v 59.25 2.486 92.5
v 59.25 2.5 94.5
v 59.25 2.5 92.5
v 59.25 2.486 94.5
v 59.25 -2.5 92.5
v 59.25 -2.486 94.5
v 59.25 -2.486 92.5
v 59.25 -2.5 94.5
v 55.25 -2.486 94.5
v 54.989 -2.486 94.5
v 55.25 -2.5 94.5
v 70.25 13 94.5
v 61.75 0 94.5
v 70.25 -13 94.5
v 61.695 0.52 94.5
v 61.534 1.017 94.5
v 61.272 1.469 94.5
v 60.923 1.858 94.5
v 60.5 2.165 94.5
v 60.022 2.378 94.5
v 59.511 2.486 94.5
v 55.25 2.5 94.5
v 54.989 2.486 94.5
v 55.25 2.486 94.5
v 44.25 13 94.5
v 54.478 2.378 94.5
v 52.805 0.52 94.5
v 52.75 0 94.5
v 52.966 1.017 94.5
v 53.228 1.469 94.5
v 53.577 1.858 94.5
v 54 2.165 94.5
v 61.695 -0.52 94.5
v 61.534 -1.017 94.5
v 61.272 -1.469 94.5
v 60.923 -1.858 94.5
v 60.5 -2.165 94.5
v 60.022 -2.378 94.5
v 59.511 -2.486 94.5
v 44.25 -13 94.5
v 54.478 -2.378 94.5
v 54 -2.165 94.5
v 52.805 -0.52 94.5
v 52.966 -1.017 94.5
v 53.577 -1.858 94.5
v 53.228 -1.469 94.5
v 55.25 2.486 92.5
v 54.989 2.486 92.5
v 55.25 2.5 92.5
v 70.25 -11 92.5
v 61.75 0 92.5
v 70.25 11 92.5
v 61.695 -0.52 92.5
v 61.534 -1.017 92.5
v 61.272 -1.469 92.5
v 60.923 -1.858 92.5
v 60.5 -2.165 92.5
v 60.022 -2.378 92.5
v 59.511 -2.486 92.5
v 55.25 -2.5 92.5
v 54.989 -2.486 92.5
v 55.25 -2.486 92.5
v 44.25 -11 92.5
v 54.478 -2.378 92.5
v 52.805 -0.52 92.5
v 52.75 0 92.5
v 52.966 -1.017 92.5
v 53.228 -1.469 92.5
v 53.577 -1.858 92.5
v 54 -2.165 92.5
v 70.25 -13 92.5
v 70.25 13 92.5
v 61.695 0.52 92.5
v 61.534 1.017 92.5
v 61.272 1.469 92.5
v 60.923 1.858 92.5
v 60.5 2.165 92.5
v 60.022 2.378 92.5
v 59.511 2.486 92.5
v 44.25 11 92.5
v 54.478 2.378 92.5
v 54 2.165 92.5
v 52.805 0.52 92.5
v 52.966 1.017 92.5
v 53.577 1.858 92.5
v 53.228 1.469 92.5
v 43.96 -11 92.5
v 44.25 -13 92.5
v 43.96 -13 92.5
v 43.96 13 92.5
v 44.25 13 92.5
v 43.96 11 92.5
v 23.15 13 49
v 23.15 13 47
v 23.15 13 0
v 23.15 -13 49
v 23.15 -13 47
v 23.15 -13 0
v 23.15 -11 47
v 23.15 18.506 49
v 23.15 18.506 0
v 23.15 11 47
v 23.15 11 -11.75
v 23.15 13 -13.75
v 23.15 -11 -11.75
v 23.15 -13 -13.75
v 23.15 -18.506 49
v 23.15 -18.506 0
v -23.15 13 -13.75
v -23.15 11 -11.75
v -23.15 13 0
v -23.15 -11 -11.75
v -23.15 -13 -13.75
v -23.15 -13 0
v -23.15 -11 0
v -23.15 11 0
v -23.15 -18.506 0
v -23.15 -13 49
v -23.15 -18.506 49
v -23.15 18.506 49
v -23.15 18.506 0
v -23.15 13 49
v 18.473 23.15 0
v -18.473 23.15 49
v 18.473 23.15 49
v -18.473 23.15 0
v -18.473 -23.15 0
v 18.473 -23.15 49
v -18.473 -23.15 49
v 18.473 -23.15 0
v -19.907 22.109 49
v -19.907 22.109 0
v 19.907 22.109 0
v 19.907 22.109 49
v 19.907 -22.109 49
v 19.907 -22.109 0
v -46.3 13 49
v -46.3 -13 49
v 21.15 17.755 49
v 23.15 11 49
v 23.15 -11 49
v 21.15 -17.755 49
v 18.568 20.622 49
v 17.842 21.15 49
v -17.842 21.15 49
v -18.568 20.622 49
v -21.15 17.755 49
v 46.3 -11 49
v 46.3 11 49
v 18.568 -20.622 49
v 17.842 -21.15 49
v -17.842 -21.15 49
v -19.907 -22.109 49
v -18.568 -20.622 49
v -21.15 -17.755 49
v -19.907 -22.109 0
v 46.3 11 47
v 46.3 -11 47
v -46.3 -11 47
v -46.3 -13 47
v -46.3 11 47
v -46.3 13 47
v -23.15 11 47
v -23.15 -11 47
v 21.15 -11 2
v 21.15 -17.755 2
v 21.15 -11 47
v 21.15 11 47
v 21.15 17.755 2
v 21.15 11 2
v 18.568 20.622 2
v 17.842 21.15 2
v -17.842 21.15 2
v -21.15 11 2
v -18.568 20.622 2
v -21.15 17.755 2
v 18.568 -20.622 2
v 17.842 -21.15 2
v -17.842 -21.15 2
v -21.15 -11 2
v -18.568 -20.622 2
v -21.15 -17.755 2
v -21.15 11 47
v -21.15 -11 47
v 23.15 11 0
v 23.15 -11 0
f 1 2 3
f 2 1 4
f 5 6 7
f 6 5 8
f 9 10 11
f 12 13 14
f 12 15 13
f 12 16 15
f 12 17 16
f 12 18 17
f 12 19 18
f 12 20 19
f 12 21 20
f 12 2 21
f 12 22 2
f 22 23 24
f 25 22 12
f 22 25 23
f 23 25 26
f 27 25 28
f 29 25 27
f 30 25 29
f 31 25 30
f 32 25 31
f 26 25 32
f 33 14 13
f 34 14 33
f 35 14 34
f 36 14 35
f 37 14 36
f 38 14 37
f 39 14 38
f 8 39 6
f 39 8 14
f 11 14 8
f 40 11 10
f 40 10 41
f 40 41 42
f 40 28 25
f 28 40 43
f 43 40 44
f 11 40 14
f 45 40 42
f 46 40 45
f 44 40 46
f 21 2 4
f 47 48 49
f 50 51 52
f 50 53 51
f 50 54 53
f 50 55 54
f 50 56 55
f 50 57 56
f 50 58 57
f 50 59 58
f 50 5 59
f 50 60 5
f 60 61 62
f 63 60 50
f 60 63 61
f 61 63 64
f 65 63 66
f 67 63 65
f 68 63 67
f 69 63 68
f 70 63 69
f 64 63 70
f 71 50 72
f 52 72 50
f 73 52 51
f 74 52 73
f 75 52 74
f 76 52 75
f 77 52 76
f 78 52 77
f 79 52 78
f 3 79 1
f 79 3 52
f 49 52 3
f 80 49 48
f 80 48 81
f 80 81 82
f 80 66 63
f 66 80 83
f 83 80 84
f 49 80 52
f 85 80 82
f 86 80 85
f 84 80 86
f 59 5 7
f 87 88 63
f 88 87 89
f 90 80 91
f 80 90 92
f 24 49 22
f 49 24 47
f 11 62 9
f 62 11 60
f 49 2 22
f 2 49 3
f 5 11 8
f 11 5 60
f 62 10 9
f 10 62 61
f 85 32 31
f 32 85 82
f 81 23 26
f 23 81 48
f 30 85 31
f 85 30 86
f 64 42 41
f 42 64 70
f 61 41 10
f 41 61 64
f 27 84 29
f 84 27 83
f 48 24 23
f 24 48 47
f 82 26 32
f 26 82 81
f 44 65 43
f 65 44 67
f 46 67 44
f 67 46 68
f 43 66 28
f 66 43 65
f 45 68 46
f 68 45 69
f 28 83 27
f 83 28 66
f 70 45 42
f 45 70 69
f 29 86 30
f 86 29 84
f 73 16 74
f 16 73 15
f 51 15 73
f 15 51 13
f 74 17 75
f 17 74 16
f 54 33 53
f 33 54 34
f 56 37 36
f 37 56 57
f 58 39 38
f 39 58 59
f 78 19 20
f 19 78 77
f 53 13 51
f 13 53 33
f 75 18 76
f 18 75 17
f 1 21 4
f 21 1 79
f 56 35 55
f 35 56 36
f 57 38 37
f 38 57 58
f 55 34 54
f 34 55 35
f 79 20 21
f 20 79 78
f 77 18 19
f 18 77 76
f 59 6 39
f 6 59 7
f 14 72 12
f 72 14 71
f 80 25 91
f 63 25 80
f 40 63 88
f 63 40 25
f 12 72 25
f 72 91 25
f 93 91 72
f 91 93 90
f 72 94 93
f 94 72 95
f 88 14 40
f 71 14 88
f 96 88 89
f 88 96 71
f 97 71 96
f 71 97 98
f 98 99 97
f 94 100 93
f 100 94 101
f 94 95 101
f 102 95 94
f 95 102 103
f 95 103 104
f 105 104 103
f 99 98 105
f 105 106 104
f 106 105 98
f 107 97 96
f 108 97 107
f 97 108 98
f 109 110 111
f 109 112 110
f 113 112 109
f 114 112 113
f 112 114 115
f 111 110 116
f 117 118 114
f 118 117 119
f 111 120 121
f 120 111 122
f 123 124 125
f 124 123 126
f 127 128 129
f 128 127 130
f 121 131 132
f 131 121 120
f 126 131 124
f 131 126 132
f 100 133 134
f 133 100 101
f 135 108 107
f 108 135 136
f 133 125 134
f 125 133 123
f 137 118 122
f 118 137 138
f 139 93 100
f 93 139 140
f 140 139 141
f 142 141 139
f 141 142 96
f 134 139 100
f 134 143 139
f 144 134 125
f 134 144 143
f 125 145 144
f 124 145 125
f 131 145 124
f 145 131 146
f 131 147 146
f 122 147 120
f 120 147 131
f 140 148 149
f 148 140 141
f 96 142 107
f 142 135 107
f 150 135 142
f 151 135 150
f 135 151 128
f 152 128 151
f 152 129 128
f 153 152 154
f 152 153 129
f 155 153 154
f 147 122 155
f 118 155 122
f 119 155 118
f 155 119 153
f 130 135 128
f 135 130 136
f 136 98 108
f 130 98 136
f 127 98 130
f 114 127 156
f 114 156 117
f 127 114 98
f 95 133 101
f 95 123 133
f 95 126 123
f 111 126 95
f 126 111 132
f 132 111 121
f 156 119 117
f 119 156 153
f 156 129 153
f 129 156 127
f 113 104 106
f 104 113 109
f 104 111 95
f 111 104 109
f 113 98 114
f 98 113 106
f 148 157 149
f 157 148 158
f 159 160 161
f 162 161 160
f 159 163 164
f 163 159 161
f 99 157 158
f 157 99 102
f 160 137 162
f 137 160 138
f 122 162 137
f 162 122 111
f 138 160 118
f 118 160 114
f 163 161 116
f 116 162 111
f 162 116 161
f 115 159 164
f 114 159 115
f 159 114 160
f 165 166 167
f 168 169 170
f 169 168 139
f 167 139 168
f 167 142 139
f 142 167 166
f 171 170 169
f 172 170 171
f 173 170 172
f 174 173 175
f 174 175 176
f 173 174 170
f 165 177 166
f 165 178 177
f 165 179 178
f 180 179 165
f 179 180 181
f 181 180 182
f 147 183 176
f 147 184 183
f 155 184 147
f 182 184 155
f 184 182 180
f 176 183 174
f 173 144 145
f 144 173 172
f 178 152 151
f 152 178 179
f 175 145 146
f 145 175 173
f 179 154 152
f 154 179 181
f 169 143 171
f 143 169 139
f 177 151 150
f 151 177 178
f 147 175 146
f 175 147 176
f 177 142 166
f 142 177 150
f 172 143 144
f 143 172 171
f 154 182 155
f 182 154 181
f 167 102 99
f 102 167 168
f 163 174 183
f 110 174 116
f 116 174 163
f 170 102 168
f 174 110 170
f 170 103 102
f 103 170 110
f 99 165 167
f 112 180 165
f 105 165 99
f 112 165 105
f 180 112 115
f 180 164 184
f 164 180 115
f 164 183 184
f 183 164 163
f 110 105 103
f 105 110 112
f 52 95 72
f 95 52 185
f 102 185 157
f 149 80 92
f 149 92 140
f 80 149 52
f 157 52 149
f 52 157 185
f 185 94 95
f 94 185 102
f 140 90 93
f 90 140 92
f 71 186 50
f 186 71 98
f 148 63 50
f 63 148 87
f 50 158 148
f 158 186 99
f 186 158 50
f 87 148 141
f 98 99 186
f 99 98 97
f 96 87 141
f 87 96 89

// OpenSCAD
$fn = 30;

h_nema17 = 47;
w_nema17 = 42.3;
r_corner = 55.5;
thickness = 2;
w_matingplate = 26;
l_leg = 45.5;
d_shaft2thread = 57.25;
d_mountingscrew = 5;

difference() {
    translate ([0, 0, (h_nema17 + thickness)/2]) {

        // material buffer for nema 17 housing
        intersection() {
            cube([
                (w_nema17 + 2*thickness),
                (w_nema17 + 2*thickness),
                (h_nema17 + 2*thickness)
            ], center=true);
            cylinder(
                r=(r_corner + 2*thickness)/2,
                h=(h_nema17 + thickness),
                center=true
            );
        }

        // material buffer for thumb clearance
        translate([0, 0, - h_nema17/2 - thickness])
        cube([
            w_nema17 + 2*thickness,
            w_matingplate,
            h_nema17/2 + thickness
        ], center=true);

        // thumb plate
        translate([0, 0, h_nema17/2])
        cube([
            2*w_nema17 + 4*thickness,
            w_matingplate,
            thickness
        ], center=true);

        // pylon1 for thumb plate
        translate([
            -w_nema17/2 - thickness,
            w_matingplate/2,
            -h_nema17/2 - thickness/2]
        )
        rotate(a=[0,0,180])
        triangle(
            b=w_nema17/2 + thickness,
            w=thickness,
            h=h_nema17
        );

        // pylon2 for thumb plate
        translate([
            -w_nema17/2 - thickness,
            -w_matingplate/2 + thickness,
            -h_nema17/2 - thickness/2]
        )
        rotate(a=[0,0,180])
        triangle(
            b=w_nema17/2 + thickness,
            w=thickness,
            h=h_nema17
        );
    }

    // nema 17 + clearance
    translate([0, 0, (h_nema17)/2 + thickness]) {

        // nema 17
        intersection() {
            cube([
                w_nema17,
                w_nema17,
                h_nema17],
            center=true);
            cylinder(
                r=r_corner/2,
                h=h_nema17,
                center=true
            );
        }

        // clearance for wires
        translate([w_nema17/2, 0, 0])
        cube([
            2*thickness,
            w_matingplate - 2*thickness,
            h_nema17 - 2*thickness
        ], center=true);

        // clearance for thumb (side)
        translate([-w_nema17/2, 0, 0])
        cube([
            2*thickness,
            w_matingplate - 2*thickness,
            h_nema17 - 2*thickness
        ], center=true);

        // clearance for thumb (bottom)
        translate([0, 0, - h_nema17/2 - thickness])
        cube([
            w_nema17 + 2*thickness,
            w_matingplate - 2*thickness,
            h_nema17/2
        ], center=true);
    }
}

module triangle(b, w, h) {
    translate([0, w/2, h])
    rotate(a=[180,90,90])
    linear_extrude(height = w, center = true)
    polygon(points=[[0,0],[h,0],[0,b]]);
}

// pylon1
translate([
    w_nema17/2 + thickness,
    11,
    0
])
difference() {
    triangle(
        b=d_shaft2thread - (w_nema17/2 + thickness) + w_matingplate/2,
        w=thickness,
        h=h_nema17 + l_leg
    );
    translate([0, 0, h_nema17 + thickness])
    triangle(
        b=d_shaft2thread - w_matingplate/2,
        w=thickness,
        h=h_nema17 + l_leg
    );
}

// pylon2
mirror([0, 1, 0])
translate([
    w_nema17/2 + thickness,
    11,
    0
])
difference() {
    triangle(
        b=d_shaft2thread - (w_nema17/2 + thickness) + w_matingplate/2,
        w=thickness,
        h=h_nema17 + l_leg
    );
    translate([0, 0, h_nema17 + thickness])
    triangle(
        b=d_shaft2thread - w_matingplate/2,
        w=thickness,
        h=h_nema17 + l_leg
    );
}

// mating plate
translate([
    d_shaft2thread,
    0,
    h_nema17 + l_leg + thickness/2
])
difference() {
    cube([w_matingplate, w_matingplate, thickness], center=true);
    // slotted hole for mounting screw
    union() {
        slotwidth = 4;
        cube([
            slotwidth,
            d_mountingscrew,
            thickness],
        center=true);
        translate([-slotwidth/2, 0, 0])
        cylinder(
            r=d_mountingscrew/2,
            h=thickness,
            center=true
        );
        translate([slotwidth/2, 0, 0])
        cylinder(
            r=d_mountingscrew/2,
            h=thickness,
            center=true
        );
    }
}
